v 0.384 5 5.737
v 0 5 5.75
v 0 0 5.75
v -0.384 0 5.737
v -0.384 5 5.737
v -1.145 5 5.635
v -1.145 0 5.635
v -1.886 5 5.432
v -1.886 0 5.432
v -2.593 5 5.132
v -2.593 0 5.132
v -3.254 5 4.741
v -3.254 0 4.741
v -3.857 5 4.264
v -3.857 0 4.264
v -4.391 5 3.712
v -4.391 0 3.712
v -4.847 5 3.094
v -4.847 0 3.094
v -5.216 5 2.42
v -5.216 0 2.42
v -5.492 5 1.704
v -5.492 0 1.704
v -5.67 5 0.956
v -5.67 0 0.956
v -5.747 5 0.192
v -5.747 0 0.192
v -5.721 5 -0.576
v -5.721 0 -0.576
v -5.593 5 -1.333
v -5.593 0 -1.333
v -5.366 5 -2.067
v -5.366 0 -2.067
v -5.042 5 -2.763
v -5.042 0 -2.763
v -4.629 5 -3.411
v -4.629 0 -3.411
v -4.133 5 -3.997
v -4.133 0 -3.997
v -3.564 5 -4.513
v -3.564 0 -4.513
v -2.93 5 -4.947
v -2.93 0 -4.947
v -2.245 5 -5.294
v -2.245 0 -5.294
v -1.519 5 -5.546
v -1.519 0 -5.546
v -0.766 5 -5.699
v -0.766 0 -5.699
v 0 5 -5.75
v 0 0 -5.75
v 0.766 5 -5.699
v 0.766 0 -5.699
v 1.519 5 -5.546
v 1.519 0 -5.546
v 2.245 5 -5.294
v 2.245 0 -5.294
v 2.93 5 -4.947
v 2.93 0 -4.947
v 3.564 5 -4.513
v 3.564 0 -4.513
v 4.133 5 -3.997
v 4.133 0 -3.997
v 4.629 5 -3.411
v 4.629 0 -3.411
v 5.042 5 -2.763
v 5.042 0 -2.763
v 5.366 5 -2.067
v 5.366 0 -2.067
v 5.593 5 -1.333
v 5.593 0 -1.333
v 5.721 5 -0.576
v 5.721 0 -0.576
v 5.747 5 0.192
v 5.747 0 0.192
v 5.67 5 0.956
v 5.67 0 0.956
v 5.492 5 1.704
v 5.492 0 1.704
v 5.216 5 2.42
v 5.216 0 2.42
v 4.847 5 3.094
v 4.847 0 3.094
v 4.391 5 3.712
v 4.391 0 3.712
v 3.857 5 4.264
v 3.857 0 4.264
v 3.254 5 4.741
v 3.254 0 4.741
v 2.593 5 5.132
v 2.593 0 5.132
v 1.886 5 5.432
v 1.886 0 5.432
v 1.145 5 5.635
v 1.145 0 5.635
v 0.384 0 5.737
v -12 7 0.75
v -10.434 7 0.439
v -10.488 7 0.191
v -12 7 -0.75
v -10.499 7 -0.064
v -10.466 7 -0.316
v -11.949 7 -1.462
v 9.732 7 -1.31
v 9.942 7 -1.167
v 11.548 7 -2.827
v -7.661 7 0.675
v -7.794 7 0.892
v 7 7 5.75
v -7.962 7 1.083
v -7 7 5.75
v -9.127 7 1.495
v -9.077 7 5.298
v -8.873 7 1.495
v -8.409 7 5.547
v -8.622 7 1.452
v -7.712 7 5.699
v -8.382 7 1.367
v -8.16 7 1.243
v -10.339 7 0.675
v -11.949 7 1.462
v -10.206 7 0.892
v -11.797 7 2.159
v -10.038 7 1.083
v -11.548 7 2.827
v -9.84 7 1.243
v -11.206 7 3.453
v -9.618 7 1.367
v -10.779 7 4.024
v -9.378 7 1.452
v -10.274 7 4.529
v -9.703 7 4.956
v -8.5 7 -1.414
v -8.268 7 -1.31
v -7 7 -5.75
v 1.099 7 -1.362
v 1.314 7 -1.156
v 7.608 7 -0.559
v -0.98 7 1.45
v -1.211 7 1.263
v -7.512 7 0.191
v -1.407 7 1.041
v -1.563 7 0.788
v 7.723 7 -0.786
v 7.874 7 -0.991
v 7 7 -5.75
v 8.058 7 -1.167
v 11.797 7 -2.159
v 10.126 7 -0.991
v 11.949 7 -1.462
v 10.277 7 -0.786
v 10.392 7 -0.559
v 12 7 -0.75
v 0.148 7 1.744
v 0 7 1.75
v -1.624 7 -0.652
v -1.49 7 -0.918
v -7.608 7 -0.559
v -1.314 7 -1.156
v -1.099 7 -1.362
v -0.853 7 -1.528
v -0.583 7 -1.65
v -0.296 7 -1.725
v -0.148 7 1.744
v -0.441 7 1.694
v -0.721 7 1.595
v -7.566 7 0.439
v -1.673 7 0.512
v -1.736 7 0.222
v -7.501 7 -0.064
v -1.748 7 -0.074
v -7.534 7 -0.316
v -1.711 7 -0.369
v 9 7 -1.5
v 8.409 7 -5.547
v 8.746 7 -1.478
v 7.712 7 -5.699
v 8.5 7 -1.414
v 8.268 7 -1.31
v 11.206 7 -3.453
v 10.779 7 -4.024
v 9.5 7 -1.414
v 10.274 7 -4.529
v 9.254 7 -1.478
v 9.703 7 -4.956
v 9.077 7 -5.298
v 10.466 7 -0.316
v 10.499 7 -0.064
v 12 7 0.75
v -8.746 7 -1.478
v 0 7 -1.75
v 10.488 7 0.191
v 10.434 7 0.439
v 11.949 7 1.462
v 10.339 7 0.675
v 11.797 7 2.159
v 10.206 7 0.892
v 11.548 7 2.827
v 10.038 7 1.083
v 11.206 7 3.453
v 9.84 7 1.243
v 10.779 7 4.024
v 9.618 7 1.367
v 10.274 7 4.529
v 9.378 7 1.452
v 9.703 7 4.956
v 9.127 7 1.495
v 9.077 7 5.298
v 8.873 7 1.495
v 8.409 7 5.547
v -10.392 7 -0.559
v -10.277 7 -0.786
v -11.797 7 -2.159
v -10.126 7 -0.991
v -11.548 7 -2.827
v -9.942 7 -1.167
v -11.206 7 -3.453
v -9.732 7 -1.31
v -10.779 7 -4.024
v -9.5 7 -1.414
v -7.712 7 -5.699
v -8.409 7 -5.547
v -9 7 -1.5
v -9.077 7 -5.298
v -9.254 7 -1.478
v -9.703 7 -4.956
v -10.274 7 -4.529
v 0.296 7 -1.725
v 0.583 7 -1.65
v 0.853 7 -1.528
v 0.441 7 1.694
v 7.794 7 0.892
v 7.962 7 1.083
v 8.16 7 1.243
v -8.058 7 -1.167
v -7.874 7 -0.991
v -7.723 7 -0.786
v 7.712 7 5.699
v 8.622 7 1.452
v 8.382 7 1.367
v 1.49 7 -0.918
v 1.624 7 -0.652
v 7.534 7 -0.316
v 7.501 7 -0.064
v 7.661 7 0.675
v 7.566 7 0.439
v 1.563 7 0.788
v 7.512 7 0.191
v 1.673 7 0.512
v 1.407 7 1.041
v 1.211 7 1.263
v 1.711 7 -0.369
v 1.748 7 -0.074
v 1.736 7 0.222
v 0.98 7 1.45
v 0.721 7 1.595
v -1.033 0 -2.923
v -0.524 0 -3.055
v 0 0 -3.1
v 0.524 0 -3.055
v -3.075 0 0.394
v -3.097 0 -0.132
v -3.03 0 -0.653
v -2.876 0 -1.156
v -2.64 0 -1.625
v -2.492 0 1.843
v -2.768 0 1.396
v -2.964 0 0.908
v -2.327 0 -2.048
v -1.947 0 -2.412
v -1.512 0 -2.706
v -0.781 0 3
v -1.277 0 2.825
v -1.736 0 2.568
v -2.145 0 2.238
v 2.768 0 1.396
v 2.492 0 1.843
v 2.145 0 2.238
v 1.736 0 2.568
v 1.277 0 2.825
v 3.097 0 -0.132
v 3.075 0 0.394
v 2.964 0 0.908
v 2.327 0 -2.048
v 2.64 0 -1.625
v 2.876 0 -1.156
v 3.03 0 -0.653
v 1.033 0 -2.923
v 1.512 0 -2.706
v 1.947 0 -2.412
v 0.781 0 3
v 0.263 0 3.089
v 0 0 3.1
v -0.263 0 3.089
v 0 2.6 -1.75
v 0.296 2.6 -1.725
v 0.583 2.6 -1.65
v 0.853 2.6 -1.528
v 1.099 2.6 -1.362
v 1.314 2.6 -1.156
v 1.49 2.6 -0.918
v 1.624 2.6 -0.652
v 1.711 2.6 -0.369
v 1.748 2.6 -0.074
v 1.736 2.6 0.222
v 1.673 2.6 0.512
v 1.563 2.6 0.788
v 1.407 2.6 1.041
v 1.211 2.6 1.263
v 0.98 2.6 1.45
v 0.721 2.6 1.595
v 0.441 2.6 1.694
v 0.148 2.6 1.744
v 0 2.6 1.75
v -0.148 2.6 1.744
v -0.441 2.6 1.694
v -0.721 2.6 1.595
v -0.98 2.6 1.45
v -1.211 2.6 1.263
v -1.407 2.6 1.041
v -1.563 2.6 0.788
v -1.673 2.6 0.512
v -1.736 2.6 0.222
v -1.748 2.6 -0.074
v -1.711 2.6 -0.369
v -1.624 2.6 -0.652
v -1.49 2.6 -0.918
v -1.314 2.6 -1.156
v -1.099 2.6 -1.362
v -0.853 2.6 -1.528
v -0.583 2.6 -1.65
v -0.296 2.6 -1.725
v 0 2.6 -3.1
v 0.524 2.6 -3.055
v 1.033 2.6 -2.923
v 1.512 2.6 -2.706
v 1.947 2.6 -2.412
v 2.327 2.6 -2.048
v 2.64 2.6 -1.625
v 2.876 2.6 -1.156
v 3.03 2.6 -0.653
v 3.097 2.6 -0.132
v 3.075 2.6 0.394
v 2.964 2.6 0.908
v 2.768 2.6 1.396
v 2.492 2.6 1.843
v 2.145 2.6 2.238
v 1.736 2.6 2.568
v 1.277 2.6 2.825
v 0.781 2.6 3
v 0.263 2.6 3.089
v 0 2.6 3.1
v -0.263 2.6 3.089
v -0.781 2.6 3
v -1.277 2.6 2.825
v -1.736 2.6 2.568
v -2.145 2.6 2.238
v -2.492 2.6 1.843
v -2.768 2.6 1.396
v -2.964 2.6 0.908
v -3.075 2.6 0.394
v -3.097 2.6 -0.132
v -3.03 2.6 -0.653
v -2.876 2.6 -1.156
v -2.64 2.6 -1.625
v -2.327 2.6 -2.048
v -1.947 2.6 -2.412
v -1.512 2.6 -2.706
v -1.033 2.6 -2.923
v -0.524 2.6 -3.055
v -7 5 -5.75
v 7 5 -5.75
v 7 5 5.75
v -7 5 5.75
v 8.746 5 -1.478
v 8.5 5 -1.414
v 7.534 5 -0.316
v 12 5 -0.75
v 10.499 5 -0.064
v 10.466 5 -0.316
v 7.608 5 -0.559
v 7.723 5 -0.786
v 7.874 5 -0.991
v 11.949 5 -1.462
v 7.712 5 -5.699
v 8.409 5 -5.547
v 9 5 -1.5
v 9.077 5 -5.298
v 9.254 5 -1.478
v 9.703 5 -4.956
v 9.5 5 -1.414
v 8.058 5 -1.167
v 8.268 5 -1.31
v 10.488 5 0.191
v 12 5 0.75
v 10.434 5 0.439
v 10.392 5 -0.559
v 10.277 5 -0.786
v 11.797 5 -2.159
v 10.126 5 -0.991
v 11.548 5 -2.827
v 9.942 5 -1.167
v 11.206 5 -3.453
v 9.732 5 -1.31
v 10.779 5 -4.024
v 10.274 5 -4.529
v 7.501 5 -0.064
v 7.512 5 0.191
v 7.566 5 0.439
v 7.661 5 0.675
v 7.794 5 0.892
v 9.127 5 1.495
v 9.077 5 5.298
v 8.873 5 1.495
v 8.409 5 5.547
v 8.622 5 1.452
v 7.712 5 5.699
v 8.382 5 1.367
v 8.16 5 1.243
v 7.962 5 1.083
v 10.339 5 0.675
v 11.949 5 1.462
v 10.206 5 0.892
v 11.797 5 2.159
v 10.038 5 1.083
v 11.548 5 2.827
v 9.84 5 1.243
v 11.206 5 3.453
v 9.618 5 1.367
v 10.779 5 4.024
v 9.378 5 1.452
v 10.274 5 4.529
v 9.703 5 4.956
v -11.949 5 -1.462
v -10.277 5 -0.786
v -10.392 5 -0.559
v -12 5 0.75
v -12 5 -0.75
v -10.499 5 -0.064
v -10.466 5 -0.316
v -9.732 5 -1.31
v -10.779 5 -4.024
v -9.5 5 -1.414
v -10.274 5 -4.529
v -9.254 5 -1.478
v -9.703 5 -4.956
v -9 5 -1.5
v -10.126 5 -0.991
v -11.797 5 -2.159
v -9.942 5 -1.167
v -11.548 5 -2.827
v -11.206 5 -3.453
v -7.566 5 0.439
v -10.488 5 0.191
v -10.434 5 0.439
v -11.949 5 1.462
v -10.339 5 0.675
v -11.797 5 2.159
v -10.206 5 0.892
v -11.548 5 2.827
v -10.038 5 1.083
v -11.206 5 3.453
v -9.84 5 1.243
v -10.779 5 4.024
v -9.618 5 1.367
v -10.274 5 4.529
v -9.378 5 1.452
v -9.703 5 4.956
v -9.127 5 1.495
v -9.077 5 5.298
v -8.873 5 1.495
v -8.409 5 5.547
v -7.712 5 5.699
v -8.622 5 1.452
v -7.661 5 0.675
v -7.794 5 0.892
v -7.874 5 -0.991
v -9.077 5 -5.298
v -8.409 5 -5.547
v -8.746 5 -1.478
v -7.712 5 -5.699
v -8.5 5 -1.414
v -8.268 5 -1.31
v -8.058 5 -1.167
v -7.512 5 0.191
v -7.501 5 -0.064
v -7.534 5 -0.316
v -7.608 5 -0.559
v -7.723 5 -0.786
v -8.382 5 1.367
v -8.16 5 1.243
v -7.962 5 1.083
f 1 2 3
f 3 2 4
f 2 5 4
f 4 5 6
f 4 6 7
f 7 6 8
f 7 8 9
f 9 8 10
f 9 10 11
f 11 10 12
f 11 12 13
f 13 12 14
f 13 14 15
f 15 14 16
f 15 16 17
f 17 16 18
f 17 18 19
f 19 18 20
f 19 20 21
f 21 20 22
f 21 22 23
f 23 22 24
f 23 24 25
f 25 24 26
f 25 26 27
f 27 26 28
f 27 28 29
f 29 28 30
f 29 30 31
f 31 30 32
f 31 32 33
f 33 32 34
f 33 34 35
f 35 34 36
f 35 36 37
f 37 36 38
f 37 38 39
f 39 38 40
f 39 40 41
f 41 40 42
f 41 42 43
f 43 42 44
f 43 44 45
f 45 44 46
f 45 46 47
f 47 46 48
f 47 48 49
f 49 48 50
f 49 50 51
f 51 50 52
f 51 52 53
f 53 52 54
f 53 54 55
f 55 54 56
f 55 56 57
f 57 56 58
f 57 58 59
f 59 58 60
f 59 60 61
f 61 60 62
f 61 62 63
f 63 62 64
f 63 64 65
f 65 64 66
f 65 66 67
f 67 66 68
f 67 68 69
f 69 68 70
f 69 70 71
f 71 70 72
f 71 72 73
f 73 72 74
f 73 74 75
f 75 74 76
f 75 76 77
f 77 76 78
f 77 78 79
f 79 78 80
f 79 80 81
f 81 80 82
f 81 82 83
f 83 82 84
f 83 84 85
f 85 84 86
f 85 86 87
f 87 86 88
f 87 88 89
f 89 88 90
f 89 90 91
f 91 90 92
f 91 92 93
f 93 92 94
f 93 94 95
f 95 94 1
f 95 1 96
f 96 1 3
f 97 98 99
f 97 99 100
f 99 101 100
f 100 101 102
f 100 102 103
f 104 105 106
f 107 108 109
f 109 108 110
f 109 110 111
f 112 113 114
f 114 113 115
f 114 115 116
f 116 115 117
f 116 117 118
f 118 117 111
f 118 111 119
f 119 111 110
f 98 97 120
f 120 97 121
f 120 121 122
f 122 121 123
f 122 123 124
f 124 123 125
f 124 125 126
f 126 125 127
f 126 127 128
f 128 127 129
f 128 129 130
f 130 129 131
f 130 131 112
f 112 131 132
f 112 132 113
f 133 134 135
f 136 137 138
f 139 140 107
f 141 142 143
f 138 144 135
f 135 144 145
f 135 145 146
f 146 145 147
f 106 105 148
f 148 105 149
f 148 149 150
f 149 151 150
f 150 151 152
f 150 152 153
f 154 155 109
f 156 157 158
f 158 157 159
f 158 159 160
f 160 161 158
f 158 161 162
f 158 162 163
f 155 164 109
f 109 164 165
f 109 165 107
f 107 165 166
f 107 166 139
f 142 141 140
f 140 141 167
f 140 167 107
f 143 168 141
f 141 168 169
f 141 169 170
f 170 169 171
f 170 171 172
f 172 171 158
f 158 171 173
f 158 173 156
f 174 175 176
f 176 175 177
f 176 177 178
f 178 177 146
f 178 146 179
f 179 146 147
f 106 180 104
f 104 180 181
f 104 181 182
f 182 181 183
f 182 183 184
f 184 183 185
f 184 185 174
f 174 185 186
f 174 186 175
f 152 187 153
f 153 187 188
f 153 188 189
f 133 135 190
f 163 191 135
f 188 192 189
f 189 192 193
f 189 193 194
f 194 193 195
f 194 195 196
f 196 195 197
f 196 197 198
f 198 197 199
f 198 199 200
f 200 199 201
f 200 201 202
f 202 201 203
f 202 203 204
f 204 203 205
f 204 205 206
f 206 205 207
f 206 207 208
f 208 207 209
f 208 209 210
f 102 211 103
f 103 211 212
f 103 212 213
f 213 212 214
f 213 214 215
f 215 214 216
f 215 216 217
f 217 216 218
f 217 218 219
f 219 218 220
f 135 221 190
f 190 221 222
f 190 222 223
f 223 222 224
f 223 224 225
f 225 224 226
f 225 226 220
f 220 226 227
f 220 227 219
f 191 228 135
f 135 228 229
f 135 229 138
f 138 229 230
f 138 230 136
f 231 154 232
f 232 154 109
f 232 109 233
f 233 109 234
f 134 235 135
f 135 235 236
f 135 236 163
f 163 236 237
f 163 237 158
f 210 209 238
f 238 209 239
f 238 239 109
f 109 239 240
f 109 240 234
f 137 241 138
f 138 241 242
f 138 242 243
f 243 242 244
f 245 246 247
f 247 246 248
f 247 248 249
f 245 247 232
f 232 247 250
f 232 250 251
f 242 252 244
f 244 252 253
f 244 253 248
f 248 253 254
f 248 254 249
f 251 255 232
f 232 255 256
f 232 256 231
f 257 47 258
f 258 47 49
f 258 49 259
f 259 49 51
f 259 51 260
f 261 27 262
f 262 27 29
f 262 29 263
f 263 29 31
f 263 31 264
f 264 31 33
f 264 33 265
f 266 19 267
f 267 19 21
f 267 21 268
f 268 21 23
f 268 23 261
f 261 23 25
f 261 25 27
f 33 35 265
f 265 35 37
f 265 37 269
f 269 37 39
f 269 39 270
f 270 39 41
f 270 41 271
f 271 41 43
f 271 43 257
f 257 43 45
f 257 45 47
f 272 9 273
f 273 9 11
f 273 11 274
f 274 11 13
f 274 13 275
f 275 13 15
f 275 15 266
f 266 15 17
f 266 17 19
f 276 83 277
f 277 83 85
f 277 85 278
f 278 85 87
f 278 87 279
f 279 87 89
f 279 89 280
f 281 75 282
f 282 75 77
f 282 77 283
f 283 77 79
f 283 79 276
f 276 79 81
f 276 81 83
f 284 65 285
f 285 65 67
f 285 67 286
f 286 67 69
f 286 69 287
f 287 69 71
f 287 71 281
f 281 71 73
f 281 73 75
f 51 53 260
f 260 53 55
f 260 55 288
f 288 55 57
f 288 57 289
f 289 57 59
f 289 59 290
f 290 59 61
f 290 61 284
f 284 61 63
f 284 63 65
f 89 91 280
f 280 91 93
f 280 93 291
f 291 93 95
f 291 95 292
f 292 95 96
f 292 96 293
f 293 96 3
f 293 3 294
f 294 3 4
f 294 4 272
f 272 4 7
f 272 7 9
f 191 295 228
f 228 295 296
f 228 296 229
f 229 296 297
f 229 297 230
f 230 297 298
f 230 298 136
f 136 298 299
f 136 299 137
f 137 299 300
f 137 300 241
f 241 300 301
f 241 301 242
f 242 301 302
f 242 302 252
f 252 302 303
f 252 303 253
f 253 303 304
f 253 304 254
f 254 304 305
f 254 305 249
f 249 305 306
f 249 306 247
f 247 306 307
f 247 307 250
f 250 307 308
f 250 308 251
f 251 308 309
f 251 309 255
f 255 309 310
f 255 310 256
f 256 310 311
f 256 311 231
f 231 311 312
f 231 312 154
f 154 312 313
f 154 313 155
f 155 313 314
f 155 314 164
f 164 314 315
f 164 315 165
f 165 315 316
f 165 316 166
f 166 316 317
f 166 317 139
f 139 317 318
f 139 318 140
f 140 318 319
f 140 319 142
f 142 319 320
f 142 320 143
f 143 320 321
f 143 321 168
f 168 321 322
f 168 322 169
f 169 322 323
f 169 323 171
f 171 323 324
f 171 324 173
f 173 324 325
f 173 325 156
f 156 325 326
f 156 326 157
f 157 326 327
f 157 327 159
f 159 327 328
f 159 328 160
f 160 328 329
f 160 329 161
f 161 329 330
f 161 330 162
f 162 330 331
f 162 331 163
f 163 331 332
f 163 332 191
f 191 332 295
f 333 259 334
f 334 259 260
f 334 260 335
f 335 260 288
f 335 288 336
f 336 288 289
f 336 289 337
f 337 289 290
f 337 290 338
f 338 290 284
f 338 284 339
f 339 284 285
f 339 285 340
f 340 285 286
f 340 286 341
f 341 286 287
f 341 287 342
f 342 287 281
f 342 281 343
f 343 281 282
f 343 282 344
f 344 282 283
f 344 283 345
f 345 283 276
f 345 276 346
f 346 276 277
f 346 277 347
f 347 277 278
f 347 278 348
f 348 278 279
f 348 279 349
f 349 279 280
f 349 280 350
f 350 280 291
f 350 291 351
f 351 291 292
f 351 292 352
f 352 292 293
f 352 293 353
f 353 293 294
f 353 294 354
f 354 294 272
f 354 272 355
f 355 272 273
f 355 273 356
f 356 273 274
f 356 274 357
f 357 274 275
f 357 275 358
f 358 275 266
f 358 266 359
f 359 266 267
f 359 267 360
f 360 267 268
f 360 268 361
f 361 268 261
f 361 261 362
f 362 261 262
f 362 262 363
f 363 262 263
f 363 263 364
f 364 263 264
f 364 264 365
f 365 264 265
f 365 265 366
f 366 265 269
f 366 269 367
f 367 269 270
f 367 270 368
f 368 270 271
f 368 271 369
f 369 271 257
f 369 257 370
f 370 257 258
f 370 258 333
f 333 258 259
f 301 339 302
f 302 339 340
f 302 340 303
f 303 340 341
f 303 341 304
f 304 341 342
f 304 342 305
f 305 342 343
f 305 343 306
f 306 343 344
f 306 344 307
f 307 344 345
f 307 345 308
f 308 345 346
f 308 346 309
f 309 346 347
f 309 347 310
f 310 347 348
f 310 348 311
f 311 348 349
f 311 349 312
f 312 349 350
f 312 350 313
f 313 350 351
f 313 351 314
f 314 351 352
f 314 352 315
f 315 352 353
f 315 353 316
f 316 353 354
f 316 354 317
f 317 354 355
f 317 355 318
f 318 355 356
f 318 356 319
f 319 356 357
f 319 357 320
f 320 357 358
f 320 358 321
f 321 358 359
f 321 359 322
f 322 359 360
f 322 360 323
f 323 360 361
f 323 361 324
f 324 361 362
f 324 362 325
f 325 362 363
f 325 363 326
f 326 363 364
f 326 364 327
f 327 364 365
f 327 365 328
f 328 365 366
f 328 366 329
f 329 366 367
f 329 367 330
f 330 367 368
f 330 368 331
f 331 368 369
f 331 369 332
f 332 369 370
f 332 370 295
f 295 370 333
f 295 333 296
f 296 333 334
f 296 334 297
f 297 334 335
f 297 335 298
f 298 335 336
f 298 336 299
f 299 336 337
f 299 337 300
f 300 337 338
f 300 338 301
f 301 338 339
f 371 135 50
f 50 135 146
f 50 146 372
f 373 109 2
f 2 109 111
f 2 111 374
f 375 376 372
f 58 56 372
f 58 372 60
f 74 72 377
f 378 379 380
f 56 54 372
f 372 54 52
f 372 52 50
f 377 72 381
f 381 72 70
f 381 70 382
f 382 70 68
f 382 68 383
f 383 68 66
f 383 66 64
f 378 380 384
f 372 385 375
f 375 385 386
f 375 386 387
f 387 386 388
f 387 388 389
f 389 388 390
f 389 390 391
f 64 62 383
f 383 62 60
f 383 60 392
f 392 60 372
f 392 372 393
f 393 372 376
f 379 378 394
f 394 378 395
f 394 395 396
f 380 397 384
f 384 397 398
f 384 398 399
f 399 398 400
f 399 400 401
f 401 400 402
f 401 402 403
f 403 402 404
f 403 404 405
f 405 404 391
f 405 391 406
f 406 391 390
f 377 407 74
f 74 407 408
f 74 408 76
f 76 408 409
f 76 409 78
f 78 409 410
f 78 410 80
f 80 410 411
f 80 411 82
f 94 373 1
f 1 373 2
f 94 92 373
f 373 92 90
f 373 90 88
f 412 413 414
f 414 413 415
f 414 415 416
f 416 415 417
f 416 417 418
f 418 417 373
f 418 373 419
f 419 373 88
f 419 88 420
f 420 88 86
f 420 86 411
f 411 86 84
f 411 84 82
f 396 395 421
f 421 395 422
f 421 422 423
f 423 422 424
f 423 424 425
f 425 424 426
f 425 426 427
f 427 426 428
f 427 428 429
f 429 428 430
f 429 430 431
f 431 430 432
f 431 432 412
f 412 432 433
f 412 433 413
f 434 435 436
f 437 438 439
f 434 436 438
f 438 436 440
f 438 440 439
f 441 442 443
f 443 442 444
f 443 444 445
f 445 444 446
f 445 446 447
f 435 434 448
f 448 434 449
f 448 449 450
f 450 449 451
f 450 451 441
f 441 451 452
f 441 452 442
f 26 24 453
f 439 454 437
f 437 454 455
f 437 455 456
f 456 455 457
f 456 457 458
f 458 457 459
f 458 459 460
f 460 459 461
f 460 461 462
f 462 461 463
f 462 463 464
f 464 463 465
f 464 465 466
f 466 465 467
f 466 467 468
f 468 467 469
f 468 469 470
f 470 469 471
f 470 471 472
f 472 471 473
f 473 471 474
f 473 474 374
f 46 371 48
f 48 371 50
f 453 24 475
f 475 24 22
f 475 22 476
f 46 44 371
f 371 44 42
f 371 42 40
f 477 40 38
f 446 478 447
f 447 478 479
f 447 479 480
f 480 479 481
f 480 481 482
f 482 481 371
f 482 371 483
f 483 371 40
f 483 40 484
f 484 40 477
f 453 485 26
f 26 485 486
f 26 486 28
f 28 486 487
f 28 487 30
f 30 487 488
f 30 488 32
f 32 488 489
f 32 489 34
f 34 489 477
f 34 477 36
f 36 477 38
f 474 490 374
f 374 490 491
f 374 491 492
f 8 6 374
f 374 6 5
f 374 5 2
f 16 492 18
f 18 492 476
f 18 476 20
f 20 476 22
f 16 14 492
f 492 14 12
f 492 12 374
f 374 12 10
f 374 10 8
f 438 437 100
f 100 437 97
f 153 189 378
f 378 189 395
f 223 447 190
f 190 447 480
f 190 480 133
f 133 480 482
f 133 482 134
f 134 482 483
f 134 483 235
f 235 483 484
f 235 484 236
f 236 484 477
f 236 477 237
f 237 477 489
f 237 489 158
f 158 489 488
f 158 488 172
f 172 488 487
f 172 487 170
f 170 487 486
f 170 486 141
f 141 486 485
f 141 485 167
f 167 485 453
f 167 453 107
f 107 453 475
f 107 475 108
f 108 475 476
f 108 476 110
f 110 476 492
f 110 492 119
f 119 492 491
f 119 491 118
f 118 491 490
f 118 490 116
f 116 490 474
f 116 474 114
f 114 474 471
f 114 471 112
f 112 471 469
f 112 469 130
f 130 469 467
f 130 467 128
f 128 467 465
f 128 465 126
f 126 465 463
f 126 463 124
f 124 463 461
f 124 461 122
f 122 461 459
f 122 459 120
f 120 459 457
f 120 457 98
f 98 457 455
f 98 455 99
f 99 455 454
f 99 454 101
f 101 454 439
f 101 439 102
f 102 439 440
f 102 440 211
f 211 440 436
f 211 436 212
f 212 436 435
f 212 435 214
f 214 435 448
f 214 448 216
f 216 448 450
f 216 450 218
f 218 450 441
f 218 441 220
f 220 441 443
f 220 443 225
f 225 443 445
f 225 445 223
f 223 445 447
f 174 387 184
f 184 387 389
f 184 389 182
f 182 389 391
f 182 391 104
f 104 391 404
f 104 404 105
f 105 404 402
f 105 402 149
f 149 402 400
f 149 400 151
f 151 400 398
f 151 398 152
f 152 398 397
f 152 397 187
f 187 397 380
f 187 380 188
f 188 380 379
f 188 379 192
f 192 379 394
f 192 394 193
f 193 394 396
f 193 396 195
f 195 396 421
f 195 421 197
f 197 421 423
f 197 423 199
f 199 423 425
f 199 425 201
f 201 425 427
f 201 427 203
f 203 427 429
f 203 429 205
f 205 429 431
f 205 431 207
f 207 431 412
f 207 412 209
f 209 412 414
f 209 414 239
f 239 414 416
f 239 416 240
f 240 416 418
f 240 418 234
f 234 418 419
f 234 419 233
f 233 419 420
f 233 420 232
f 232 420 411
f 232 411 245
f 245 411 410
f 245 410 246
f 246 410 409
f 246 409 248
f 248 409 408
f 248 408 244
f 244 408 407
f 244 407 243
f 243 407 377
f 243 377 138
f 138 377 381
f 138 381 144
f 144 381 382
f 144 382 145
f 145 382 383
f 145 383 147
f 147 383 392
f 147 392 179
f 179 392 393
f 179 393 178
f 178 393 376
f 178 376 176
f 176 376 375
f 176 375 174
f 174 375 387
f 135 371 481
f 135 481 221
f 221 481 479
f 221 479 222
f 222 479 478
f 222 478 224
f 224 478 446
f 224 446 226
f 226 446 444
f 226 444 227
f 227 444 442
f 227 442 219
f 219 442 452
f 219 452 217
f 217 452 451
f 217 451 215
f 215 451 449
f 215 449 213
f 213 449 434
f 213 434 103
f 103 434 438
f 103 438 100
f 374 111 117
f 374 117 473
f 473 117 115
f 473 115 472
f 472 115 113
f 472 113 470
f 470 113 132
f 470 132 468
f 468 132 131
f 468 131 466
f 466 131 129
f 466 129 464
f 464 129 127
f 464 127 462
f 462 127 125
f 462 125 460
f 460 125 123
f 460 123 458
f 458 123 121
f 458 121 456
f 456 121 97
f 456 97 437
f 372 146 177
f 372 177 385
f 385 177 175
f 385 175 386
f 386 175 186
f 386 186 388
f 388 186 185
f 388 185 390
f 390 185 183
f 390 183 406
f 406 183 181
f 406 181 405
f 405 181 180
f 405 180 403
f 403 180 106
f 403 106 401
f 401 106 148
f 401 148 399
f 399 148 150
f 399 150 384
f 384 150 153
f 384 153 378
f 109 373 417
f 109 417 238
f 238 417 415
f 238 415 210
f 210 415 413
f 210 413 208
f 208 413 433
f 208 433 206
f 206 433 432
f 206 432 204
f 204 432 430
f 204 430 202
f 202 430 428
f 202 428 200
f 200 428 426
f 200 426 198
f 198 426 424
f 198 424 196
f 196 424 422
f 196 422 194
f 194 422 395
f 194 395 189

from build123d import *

# Parameters (mm, degrees)
SKETCH_1_R          = 5.75
SKETCH_1_R_2        = 1.75
EXTRUDE_1_DEPTH     = 7
SKETCH_1_20_R       = 3.1
CUT_EXTRUDE_1_DEPTH = 2.6
EXTRUDE_START       = 5
SKETCH_1_21_W       = 24
SKETCH_1_21_H       = 11.5
SKETCH_1_21_R       = 1.75
EXTRUDE_2_DEPTH     = 2
SKETCH_2_R          = 1.5
CUT_EXTRUDE_2_DEPTH = 15.214868976
FILLET_1_R          = 5


with BuildPart() as part:
    # 草图1 → 凸台-拉伸1 (new body)
    with BuildSketch(Plane(origin=(0, 0, 0), x_dir=(1, 0, 0), z_dir=(0, 1, 0))):
        with Locations(Location((0, 0, 0), (0, 0, 270))):
            Circle(SKETCH_1_R)
        with Locations(Location((0, 0, 0), (0, 0, 270))):
            Circle(SKETCH_1_R_2, mode=Mode.SUBTRACT)
    extrude(amount=EXTRUDE_1_DEPTH)

    # 草图1<20> → 切除-拉伸1 (cut)
    with BuildSketch(Plane(origin=(0, 0, 0), x_dir=(1, 0, 0), z_dir=(0, 1, 0))):
        with Locations(Location((0, 0, 0), (0, 0, 270))):
            Circle(SKETCH_1_20_R)
    extrude(amount=CUT_EXTRUDE_1_DEPTH, mode=Mode.SUBTRACT)

    # 草图1<21> → 凸台-拉伸2 (add)
    with BuildSketch(Plane(origin=(0, 0, 0), x_dir=(1, 0, 0), z_dir=(0, 1, 0)).offset(EXTRUDE_START)):
        Rectangle(SKETCH_1_21_W, SKETCH_1_21_H)
        with Locations(Location((0, 0, 0), (0, 0, 270))):
            Circle(SKETCH_1_21_R, mode=Mode.SUBTRACT)
    extrude(amount=EXTRUDE_2_DEPTH)

    # 草图2 → 切除-拉伸2 (cut, through all)
    with BuildSketch(Plane.XZ.offset(-5)):
        with Locations(Location((-9, 0, 0), (0, 0, 270))):
            Circle(SKETCH_2_R)
        with Locations(Location((9, 0, 0), (0, 0, 270))):
            Circle(SKETCH_2_R)
    extrude(amount=-CUT_EXTRUDE_2_DEPTH, mode=Mode.SUBTRACT)

    # 圆角1
    fillet_1_edges = [part.edges().sort_by_distance(p)[0] for p in [
        (12, 6, 5.75),
        (-12, 6, 5.75),
        (-12, 6, -5.75),
        (12, 6, -5.75),
    ]]
    fillet(fillet_1_edges, radius=FILLET_1_R)


solid = part.part
